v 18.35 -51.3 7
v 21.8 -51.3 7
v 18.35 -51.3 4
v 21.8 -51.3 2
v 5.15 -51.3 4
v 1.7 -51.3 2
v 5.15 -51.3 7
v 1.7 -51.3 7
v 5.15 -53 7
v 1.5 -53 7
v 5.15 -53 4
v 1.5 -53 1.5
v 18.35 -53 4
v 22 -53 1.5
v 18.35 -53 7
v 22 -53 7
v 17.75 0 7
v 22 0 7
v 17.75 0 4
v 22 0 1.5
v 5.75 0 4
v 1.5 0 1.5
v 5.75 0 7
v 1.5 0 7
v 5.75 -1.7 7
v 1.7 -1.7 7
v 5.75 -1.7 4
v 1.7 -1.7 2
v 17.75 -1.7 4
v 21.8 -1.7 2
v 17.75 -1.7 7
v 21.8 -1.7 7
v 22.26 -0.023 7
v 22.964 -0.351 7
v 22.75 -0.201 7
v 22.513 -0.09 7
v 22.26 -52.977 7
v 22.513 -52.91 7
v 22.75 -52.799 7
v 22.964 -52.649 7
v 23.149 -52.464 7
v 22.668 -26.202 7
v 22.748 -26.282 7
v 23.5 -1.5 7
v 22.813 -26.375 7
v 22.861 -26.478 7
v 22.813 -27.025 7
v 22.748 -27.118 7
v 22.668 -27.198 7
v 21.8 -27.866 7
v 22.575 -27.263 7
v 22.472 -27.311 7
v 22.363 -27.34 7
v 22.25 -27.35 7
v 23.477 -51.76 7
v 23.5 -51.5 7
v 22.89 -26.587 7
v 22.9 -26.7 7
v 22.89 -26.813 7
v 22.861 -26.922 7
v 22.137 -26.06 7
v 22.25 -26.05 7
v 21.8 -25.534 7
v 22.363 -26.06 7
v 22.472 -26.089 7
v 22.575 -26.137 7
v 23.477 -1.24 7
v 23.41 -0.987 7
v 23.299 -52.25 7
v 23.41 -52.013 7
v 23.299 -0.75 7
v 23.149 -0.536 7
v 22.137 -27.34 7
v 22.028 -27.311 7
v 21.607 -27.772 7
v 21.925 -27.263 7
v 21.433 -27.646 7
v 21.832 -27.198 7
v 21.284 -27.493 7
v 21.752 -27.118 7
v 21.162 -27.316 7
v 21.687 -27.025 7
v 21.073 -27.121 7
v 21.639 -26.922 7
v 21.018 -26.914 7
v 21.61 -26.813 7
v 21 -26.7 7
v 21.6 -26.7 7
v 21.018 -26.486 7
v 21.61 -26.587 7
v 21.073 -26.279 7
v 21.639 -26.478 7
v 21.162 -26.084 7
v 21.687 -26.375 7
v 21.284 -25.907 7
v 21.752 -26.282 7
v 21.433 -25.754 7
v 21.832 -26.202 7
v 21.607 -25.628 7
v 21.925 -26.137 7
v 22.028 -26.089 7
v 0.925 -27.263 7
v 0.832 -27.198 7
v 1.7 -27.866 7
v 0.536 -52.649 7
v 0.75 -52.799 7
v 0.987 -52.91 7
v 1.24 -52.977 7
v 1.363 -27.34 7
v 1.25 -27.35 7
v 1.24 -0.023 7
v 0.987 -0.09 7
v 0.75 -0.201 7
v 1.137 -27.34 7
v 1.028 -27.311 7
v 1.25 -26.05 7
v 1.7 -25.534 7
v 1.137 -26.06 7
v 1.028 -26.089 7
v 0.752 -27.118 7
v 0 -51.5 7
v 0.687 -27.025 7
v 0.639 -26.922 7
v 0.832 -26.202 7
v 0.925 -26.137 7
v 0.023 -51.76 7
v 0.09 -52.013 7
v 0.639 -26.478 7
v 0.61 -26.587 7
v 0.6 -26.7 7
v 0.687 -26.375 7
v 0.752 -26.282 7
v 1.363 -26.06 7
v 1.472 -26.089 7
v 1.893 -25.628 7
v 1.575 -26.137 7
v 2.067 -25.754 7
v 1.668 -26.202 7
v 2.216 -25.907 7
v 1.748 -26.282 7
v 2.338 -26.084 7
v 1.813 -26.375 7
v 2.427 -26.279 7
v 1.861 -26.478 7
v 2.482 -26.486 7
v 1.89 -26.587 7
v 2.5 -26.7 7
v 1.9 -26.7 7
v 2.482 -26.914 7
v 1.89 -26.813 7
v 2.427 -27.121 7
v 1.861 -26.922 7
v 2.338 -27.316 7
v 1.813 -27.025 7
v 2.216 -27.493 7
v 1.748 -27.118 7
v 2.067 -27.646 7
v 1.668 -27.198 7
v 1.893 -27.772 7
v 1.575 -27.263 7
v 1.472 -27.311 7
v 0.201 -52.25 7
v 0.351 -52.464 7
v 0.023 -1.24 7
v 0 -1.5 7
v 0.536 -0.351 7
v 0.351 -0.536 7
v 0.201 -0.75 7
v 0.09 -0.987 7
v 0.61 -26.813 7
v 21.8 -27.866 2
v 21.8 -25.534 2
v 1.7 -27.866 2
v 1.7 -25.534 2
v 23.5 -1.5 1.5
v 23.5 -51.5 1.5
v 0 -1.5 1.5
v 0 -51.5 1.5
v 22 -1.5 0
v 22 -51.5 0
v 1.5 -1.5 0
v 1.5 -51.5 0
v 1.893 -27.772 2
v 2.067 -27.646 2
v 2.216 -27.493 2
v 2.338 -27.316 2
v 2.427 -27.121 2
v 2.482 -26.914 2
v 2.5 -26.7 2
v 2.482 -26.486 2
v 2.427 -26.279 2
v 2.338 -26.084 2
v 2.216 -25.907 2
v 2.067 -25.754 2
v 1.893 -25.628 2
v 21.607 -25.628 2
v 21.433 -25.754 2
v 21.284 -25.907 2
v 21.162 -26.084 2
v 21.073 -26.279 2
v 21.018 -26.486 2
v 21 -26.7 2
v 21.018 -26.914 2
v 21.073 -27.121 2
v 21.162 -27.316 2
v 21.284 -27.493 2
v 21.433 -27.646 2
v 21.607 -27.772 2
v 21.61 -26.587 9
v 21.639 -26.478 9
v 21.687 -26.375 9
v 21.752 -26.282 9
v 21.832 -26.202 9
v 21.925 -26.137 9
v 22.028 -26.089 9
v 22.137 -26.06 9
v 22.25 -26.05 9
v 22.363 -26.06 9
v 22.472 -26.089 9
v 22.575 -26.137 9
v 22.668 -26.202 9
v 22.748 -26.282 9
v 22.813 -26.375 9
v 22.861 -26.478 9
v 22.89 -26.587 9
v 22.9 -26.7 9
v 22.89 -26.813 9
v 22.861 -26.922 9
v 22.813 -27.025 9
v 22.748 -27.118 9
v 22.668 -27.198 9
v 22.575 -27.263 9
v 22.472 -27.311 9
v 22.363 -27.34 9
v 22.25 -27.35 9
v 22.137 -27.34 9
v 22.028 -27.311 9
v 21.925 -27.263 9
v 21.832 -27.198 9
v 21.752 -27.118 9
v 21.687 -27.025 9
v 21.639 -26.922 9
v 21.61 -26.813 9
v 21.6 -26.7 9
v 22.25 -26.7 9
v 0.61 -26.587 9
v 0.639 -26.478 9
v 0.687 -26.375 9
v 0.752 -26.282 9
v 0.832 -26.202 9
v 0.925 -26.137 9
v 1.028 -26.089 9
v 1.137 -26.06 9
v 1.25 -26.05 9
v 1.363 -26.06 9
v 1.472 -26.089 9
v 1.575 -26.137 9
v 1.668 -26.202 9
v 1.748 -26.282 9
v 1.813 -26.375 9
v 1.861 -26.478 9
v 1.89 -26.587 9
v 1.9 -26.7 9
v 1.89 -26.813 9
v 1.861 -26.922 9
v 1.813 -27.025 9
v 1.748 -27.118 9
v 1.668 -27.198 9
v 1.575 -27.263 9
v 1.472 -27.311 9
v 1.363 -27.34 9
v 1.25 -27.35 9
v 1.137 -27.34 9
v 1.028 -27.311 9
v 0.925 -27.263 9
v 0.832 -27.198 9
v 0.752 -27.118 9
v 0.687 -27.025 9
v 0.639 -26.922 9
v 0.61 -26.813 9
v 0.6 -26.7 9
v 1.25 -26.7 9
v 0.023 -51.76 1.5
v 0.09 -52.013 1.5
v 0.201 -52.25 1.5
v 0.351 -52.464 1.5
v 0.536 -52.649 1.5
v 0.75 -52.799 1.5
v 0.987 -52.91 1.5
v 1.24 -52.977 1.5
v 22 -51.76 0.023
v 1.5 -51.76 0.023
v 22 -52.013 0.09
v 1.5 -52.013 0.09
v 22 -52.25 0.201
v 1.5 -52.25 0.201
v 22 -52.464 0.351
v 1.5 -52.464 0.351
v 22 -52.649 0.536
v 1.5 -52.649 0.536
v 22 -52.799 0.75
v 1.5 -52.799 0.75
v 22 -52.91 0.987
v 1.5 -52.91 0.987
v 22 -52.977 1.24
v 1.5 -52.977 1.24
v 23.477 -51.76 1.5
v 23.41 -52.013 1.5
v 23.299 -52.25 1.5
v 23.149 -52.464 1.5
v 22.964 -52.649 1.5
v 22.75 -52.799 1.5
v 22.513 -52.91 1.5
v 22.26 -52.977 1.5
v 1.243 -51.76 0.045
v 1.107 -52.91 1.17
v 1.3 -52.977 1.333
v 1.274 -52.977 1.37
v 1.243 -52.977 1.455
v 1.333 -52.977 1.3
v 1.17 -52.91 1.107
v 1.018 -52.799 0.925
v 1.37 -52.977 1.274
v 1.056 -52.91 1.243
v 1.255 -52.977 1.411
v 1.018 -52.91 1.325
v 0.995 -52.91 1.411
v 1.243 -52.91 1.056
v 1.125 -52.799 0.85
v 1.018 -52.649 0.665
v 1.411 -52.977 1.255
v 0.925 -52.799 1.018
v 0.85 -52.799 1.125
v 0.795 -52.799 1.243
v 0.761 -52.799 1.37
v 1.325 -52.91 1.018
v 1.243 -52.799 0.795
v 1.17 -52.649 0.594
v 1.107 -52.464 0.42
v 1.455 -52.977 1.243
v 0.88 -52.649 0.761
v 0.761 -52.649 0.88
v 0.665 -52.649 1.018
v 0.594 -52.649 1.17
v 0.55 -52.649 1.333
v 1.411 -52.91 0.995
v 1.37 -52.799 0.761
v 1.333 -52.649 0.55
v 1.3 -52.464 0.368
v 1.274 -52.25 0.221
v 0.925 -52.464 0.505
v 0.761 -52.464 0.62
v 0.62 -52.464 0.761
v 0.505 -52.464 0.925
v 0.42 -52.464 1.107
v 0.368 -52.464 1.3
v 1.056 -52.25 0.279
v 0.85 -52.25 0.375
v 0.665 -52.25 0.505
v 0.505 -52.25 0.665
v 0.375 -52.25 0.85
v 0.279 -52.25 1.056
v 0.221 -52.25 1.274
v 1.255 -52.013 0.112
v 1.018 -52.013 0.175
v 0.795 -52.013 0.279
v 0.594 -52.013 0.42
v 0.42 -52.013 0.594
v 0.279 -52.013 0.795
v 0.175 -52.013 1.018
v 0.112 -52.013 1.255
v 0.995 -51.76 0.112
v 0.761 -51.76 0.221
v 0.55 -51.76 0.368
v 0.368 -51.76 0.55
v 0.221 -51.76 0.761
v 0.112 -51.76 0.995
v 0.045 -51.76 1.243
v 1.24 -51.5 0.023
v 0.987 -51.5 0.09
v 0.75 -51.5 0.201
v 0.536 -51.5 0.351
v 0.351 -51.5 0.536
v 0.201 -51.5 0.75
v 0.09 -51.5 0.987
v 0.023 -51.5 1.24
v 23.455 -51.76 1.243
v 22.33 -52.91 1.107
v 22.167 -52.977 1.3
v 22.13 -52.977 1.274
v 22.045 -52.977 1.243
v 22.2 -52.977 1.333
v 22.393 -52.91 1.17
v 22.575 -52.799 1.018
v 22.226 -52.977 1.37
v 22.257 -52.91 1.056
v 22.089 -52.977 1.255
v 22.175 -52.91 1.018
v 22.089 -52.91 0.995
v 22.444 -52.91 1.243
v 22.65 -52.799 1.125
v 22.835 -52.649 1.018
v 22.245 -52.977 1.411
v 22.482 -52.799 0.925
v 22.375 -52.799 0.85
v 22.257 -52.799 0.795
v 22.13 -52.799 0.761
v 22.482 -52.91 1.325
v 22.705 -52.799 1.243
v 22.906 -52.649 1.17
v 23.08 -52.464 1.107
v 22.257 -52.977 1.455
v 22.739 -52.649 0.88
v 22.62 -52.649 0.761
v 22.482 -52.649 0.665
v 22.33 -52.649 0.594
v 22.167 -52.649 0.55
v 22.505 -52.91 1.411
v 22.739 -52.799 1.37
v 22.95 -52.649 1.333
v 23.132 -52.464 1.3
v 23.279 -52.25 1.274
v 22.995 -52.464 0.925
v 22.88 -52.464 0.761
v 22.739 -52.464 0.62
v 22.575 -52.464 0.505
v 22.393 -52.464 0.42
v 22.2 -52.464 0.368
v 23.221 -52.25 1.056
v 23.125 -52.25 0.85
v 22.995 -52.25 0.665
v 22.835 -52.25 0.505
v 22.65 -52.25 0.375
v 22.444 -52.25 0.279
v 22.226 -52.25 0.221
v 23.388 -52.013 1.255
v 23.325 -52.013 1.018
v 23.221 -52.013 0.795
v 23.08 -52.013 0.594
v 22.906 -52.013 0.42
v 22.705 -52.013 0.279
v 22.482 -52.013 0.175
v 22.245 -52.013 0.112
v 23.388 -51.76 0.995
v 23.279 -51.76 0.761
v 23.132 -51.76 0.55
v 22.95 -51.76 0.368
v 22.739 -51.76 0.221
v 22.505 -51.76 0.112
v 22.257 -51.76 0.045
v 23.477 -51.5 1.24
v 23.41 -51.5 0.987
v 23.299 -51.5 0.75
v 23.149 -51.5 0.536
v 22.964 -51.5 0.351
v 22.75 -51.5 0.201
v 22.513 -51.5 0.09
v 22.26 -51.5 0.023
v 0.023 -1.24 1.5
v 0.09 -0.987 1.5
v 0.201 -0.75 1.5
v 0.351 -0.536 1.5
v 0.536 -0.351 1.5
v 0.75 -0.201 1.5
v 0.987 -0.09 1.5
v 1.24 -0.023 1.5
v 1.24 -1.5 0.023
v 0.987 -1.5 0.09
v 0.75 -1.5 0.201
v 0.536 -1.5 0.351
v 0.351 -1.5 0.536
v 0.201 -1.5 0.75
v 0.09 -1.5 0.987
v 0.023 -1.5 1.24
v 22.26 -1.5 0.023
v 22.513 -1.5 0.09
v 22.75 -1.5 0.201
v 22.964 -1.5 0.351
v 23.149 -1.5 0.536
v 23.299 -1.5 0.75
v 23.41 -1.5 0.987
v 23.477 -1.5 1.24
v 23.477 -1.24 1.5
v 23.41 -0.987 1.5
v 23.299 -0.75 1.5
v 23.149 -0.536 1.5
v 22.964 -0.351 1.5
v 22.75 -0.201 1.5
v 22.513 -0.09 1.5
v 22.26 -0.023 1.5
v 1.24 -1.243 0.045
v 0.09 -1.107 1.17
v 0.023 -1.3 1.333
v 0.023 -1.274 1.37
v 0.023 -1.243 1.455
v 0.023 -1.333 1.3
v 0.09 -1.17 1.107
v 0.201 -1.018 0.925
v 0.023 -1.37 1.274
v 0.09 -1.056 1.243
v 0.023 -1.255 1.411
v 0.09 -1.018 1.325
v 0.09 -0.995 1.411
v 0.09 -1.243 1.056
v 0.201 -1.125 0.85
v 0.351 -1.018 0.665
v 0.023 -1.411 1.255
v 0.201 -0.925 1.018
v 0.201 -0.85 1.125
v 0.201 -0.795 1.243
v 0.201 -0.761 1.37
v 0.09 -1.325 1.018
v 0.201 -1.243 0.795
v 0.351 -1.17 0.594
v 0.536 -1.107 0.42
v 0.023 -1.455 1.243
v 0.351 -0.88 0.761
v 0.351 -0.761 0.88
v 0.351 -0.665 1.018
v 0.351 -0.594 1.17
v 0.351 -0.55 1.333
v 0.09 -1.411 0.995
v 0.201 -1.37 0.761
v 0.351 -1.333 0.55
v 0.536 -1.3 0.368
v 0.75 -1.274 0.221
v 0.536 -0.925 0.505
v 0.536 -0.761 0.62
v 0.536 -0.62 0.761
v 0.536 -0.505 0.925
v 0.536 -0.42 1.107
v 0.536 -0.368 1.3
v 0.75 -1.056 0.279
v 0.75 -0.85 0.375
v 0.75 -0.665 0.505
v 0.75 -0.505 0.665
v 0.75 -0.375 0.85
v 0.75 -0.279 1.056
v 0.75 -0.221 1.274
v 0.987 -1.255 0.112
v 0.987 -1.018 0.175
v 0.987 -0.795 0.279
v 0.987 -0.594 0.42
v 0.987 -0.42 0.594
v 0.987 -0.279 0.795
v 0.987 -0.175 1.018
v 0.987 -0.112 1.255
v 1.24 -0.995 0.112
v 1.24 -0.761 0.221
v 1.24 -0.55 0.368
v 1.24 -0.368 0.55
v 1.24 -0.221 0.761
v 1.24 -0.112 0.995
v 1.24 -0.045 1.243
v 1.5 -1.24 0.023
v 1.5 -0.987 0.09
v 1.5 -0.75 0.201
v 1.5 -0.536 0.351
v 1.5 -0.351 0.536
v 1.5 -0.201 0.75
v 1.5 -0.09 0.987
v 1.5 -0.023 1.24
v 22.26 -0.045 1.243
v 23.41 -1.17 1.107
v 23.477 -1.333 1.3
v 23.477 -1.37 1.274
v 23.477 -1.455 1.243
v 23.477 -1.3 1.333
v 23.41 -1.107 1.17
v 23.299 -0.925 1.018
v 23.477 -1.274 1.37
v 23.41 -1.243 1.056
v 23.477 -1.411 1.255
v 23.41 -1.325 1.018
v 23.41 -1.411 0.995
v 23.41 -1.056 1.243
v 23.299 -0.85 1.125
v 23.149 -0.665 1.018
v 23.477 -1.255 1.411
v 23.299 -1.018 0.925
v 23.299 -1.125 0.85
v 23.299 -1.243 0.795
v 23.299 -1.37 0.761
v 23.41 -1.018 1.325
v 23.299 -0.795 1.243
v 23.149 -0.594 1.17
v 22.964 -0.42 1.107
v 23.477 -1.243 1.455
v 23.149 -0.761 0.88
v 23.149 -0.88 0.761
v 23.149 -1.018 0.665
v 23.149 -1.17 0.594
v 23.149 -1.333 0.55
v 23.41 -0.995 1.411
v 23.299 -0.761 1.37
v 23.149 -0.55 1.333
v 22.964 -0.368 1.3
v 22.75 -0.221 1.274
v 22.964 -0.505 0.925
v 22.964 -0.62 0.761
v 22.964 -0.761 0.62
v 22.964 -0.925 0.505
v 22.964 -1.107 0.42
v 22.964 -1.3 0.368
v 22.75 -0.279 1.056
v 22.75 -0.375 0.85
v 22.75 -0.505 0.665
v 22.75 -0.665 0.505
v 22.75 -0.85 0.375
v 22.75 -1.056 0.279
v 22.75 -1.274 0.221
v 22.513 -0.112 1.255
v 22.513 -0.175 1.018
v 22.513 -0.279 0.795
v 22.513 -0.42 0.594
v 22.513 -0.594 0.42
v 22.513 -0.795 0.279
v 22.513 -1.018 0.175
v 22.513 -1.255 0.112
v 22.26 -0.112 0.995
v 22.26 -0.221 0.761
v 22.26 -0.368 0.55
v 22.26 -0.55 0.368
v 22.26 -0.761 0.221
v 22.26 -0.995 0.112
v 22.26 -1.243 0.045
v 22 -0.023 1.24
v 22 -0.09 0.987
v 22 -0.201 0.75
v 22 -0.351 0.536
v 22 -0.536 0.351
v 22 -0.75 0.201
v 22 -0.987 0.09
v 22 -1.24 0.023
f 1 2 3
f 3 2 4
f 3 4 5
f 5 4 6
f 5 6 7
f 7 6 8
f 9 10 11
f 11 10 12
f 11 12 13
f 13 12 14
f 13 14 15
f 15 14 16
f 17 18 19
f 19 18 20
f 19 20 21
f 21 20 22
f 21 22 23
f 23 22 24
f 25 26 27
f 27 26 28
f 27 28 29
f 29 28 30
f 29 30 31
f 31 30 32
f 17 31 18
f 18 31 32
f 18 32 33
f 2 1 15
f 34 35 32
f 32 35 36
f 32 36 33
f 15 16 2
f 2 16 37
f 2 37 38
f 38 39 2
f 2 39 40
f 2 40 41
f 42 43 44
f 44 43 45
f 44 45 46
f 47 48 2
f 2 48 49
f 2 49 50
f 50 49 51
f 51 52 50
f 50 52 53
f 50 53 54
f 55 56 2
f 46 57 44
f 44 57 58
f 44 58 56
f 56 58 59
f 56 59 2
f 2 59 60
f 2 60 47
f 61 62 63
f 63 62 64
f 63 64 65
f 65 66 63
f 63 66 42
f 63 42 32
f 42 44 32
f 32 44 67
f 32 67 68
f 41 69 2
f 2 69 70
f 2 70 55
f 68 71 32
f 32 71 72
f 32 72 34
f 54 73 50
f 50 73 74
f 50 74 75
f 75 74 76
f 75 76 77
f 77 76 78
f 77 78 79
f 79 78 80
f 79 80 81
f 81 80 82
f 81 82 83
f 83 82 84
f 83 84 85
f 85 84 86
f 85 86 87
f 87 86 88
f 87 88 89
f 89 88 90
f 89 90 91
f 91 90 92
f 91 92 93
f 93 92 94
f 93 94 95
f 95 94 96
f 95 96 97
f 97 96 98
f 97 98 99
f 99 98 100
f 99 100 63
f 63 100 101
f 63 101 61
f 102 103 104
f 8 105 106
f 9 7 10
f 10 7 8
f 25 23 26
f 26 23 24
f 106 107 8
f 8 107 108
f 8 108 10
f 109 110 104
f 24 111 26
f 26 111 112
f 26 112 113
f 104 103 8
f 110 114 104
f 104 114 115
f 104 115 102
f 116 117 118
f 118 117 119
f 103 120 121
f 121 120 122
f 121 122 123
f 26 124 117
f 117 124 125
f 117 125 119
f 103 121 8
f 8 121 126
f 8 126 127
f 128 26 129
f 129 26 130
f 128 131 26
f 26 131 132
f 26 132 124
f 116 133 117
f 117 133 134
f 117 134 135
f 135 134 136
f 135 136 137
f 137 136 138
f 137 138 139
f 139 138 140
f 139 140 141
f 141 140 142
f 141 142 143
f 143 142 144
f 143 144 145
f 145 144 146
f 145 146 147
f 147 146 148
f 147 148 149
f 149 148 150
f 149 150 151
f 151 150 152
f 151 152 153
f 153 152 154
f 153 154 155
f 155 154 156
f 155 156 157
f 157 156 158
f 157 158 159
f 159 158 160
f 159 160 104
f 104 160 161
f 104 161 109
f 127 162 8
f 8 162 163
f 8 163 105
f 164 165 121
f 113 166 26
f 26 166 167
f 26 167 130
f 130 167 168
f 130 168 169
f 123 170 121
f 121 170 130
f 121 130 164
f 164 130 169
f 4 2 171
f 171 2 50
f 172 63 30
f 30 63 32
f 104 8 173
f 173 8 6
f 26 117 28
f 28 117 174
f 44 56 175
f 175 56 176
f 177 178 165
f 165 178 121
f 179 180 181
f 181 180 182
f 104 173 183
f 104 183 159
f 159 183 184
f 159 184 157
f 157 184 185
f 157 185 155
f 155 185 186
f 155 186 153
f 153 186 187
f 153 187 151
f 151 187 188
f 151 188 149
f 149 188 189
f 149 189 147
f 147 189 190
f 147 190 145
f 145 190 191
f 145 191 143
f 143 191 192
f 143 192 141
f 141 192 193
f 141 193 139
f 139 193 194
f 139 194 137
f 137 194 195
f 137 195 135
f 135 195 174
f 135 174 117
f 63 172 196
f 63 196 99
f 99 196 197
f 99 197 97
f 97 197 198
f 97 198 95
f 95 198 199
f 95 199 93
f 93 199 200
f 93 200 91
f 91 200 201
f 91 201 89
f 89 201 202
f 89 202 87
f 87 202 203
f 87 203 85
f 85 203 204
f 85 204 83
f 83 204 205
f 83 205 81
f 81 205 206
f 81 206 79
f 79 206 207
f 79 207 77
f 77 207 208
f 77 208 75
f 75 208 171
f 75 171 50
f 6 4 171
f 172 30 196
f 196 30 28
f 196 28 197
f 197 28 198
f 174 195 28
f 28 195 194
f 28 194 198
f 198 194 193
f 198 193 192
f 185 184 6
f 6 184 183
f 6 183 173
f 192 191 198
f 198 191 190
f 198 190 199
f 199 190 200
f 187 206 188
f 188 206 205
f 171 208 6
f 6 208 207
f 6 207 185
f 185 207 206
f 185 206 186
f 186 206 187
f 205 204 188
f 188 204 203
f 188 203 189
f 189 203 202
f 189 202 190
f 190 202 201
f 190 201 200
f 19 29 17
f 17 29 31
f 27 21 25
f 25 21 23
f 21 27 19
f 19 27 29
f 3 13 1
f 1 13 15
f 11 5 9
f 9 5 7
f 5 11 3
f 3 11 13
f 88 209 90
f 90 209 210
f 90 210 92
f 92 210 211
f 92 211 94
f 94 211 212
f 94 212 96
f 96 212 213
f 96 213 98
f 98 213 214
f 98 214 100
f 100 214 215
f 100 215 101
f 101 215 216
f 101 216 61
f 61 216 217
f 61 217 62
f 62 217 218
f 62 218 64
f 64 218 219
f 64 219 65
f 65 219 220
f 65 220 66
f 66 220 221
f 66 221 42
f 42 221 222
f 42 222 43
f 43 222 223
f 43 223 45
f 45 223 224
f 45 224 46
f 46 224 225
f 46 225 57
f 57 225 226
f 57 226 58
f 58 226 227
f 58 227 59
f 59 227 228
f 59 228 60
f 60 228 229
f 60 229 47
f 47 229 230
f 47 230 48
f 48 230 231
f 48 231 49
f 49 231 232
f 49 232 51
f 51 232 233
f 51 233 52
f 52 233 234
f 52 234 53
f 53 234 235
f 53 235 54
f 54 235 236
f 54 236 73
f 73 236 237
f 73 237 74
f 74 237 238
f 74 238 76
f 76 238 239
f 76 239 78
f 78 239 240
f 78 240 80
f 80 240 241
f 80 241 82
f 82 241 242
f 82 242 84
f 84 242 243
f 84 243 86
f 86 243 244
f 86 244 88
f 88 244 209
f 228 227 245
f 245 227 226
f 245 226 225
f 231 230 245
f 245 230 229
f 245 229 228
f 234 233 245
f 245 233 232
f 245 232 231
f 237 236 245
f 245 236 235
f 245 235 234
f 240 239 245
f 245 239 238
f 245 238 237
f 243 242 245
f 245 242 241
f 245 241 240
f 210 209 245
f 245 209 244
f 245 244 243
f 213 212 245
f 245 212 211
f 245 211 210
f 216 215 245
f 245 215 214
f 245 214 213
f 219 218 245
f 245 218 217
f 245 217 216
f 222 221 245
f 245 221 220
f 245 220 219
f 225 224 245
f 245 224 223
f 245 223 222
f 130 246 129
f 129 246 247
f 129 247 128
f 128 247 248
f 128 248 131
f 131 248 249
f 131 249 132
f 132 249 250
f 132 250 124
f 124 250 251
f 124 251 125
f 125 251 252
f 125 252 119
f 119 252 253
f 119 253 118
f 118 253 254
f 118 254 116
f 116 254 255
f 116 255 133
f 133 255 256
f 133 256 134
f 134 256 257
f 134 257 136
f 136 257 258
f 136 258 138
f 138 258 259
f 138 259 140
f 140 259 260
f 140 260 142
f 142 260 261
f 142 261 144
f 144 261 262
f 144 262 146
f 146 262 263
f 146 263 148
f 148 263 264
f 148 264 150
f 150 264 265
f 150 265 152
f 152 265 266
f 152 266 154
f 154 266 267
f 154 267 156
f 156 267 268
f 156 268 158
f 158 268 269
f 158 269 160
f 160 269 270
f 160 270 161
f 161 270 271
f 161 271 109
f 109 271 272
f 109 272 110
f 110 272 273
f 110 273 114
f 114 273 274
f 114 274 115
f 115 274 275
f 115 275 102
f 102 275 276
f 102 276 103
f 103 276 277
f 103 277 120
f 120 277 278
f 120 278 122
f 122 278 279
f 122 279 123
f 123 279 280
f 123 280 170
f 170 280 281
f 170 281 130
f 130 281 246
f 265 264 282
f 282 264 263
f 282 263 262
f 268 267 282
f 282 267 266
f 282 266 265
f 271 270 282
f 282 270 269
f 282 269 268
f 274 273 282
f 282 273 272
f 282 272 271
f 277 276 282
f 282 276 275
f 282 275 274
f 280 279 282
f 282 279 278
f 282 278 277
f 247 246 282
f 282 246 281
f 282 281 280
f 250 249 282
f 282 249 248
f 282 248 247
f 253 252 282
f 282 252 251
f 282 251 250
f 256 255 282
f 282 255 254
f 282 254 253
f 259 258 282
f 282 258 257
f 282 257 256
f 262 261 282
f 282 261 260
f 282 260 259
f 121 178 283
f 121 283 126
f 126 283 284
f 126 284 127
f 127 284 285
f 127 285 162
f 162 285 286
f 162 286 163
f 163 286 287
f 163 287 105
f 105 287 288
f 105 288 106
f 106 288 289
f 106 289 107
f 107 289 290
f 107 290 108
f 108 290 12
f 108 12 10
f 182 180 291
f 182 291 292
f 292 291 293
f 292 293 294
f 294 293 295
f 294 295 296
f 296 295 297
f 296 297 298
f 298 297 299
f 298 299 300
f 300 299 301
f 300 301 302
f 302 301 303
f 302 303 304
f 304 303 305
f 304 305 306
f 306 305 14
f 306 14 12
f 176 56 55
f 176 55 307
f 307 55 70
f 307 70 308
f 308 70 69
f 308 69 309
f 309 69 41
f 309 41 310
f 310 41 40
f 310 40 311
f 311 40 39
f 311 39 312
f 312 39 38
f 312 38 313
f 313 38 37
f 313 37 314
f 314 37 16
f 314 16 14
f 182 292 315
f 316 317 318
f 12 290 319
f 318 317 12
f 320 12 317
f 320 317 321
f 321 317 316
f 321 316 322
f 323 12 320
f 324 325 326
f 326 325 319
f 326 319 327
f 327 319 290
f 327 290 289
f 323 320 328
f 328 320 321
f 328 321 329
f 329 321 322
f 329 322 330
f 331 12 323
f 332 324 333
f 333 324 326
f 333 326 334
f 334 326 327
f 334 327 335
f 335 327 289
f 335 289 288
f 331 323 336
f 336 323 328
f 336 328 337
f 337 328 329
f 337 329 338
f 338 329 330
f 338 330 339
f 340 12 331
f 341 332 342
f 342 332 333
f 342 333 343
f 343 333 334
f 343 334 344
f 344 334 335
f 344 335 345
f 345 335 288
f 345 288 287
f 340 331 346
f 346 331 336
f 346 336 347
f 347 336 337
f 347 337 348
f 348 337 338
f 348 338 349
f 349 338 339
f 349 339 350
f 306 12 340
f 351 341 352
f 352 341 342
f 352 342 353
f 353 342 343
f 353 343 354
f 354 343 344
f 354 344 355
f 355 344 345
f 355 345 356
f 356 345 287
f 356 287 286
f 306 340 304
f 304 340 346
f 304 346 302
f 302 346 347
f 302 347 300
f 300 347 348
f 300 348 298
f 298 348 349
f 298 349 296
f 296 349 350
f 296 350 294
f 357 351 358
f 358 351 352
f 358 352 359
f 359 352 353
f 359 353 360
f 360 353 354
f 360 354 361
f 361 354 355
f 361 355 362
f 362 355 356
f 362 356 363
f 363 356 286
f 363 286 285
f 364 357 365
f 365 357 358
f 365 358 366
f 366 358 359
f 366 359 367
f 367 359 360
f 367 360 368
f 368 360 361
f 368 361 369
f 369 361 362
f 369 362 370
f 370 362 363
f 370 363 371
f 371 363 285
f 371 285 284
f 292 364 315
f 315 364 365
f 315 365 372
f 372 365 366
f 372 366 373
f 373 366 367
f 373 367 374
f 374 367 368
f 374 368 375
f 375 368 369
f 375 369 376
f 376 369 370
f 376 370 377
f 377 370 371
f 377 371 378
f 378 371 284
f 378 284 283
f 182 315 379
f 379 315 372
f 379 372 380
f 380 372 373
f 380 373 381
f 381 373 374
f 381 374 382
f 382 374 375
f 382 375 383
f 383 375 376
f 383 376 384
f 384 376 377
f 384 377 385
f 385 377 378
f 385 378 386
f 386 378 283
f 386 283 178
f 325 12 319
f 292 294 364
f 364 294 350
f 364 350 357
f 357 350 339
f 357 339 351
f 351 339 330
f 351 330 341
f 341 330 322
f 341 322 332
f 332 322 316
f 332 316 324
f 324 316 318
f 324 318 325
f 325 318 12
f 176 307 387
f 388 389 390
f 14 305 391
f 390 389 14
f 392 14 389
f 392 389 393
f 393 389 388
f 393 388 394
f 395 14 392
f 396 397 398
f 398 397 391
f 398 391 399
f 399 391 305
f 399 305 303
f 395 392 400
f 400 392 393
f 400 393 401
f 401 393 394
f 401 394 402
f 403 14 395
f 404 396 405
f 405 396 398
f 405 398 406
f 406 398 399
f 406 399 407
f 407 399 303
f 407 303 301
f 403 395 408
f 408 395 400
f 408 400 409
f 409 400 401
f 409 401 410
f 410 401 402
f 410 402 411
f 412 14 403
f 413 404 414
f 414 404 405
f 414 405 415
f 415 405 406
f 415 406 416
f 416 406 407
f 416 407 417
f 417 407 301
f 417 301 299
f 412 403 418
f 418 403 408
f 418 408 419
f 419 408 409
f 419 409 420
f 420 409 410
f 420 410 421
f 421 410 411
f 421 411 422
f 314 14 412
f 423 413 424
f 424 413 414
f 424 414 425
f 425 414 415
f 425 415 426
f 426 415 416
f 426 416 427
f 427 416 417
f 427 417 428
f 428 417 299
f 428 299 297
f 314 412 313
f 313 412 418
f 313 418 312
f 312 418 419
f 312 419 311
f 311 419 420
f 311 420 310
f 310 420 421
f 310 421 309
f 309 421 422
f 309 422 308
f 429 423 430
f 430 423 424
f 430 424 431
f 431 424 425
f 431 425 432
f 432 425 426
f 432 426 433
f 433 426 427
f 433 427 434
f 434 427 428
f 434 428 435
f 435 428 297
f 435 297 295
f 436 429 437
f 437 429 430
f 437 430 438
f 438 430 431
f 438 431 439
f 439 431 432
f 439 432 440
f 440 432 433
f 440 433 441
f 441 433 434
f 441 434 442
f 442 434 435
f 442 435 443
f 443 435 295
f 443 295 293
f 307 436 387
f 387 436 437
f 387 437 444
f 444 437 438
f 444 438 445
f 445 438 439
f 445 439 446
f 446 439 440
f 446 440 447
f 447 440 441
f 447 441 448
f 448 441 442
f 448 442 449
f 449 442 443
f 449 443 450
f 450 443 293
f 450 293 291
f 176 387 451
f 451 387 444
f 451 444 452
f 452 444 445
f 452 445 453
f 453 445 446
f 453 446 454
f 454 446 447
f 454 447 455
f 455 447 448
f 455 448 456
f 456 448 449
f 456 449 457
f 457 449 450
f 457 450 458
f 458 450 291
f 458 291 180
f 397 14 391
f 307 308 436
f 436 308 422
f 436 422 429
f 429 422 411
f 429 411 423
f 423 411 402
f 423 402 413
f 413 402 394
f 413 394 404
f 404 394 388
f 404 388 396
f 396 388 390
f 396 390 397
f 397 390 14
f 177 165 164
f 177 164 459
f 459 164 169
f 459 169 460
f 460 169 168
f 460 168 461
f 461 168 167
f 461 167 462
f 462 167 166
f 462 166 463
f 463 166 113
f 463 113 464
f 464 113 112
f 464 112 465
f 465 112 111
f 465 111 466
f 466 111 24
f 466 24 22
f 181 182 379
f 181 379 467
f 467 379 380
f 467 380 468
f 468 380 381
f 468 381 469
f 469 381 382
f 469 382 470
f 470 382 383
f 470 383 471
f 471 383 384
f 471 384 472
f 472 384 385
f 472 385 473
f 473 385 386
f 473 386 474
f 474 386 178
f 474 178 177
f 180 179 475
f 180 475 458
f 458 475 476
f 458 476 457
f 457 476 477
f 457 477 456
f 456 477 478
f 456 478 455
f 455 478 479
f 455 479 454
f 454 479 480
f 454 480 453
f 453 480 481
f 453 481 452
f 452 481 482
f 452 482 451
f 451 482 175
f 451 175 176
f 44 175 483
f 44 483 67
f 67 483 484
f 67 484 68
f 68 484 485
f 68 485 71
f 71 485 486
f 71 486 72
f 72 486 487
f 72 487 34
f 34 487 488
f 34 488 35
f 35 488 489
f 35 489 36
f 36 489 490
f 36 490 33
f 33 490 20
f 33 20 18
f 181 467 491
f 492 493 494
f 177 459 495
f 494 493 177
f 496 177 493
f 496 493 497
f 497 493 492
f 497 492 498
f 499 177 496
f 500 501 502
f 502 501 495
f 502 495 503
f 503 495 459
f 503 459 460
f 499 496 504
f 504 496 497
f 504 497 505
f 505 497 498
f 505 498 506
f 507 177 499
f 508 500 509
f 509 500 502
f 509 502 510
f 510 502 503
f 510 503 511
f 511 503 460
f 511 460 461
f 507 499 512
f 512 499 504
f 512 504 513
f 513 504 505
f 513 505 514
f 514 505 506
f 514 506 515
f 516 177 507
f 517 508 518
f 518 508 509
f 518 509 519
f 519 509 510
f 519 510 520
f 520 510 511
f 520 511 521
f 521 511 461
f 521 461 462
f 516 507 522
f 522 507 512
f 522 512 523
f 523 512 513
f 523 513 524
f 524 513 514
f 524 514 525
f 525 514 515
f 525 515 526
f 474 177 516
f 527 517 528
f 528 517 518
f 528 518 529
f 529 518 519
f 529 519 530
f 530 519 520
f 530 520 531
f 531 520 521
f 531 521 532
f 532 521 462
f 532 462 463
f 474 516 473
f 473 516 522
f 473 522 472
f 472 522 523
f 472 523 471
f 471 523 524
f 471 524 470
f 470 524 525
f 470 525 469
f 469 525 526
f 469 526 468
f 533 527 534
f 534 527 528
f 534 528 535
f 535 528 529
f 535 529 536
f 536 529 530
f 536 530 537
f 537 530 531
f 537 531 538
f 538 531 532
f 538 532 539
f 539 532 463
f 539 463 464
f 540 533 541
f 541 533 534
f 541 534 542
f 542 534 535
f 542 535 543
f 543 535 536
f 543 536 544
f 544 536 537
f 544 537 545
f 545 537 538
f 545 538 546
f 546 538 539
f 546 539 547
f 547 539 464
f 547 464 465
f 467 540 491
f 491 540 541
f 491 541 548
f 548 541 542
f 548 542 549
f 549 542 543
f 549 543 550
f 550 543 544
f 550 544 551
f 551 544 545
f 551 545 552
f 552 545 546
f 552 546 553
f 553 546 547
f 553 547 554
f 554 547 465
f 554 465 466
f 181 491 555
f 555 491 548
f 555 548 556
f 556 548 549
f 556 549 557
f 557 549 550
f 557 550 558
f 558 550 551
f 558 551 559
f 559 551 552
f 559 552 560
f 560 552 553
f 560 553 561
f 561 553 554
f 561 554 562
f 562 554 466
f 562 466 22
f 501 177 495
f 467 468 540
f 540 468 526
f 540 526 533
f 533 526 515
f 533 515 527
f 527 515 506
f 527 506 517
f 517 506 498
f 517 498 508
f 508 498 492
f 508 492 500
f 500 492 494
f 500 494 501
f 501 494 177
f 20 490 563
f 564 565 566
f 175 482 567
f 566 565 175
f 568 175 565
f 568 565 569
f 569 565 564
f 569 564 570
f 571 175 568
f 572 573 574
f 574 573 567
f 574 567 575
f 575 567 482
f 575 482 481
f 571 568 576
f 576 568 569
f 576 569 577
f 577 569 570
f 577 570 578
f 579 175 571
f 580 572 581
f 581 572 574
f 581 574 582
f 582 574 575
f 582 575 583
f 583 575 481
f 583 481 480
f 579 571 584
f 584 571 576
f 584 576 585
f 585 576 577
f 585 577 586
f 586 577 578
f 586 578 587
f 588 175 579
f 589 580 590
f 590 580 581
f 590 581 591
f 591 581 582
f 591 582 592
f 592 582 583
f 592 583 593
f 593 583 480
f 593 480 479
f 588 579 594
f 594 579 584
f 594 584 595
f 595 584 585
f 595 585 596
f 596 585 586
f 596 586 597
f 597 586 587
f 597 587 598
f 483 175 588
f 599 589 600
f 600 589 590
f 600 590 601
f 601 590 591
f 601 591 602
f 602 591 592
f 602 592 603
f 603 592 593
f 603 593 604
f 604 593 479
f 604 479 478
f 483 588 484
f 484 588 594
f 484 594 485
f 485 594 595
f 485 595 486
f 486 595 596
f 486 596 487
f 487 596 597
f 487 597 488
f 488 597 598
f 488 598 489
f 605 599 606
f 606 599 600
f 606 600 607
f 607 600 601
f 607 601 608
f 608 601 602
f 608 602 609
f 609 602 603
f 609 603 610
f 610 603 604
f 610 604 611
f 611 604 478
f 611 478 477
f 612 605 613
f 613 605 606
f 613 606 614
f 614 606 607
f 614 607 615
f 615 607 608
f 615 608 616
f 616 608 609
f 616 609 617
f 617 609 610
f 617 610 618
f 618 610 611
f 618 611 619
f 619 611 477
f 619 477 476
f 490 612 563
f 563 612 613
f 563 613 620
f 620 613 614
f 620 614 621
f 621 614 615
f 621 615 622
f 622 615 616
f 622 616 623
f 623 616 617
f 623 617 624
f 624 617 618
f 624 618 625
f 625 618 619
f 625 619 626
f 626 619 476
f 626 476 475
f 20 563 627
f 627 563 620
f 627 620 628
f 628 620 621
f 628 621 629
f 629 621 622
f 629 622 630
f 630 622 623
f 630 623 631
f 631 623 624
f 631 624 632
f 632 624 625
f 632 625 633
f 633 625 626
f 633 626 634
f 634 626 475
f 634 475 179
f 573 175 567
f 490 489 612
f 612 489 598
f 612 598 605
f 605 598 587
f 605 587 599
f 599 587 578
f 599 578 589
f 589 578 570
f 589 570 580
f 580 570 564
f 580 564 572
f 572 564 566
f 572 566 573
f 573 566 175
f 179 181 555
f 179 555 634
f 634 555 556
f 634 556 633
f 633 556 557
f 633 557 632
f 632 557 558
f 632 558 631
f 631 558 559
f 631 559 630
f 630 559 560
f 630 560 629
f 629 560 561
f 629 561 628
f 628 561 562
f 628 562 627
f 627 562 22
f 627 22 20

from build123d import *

# Parameters (mm, degrees)
SKETCH_1_W          = 23.5
SKETCH_1_H          = 53
SKETCH_1_W_2        = 20.1
SKETCH_1_H_2        = 49.6
EXTRUDE_1_DEPTH     = 7
SKETCH_1_5_R        = 1.25
EXTRUDE_2_DEPTH     = 7
EXTRUDE_3_DEPTH     = 2
SKETCH_2_W          = 13.2
SKETCH_2_H          = 1.7
SKETCH_2_W_2        = 12
CUT_EXTRUDE_1_DEPTH = 3
SKETCH_2_3_R        = 0.65
EXTRUDE_4_DEPTH     = 2
FILLET_1_R          = 1.5


with BuildPart() as part:
    # 草图1 → 凸台-拉伸1 (new body)
    with BuildSketch(Plane.XY):
        with Locations((11.75, -26.5)):
            Rectangle(SKETCH_1_W, SKETCH_1_H)
        with Locations((11.75, -26.5)):
            Rectangle(SKETCH_1_W_2, SKETCH_1_H_2, mode=Mode.SUBTRACT)
    extrude(amount=EXTRUDE_1_DEPTH)

    # 草图1<5> → 凸台-拉伸2 (add)
    with BuildSketch(Plane.XY):
        with Locations((1.25, -26.7)):
            Circle(SKETCH_1_5_R)
        with Locations((22.25, -26.7)):
            Circle(SKETCH_1_5_R)
    extrude(amount=EXTRUDE_2_DEPTH)

    # 草图1<6> → 凸台-拉伸3 (add)
    with BuildSketch(Plane.XY):
        with BuildLine():
            Line((1.7, -1.7), (1.7, -25.533809621))
            ThreePointArc((1.7, -25.533809621), (2.280776406, -25.992893219), (2.5, -26.7))
            ThreePointArc((2.5, -26.7), (2.280776406, -27.407106781), (1.7, -27.866190379))
            Line((1.7, -27.866190379), (1.7, -51.3))
            Line((1.7, -51.3), (21.8, -51.3))
            Line((21.8, -51.3), (21.8, -27.866190379))
            ThreePointArc((21.8, -27.866190379), (21, -26.7), (21.8, -25.533809621))
            Line((21.8, -25.533809621), (21.8, -1.7))
            Line((21.8, -1.7), (1.7, -1.7))
        make_face()
    extrude(amount=EXTRUDE_3_DEPTH)

    # 草图2 → 切除-拉伸1 (cut)
    with BuildSketch(Plane.XY.offset(7)):
        with Locations((11.75, -52.15)):
            Rectangle(SKETCH_2_W, SKETCH_2_H)
        with Locations((11.75, -0.85)):
            Rectangle(SKETCH_2_W_2, SKETCH_2_H)
    extrude(amount=-CUT_EXTRUDE_1_DEPTH, mode=Mode.SUBTRACT)

    # 草图2<3> → 凸台-拉伸4 (add)
    with BuildSketch(Plane.XY.offset(7)):
        with Locations((1.25, -26.7)):
            Circle(SKETCH_2_3_R)
        with Locations((22.25, -26.7)):
            Circle(SKETCH_2_3_R)
    extrude(amount=EXTRUDE_4_DEPTH)

    # 圆角1
    fillet_1_edges = [part.edges().sort_by_distance(p)[0] for p in [
        (11.75, 0, 0),
        (0, -26.5, 0),
        (11.75, -53, 0),
        (23.5, -26.5, 0),
        (0, 0, 3.5),
        (23.5, 0, 3.5),
        (23.5, -53, 3.5),
        (0, -53, 3.5),
    ]]
    fillet(fillet_1_edges, radius=FILLET_1_R)


solid = part.part
